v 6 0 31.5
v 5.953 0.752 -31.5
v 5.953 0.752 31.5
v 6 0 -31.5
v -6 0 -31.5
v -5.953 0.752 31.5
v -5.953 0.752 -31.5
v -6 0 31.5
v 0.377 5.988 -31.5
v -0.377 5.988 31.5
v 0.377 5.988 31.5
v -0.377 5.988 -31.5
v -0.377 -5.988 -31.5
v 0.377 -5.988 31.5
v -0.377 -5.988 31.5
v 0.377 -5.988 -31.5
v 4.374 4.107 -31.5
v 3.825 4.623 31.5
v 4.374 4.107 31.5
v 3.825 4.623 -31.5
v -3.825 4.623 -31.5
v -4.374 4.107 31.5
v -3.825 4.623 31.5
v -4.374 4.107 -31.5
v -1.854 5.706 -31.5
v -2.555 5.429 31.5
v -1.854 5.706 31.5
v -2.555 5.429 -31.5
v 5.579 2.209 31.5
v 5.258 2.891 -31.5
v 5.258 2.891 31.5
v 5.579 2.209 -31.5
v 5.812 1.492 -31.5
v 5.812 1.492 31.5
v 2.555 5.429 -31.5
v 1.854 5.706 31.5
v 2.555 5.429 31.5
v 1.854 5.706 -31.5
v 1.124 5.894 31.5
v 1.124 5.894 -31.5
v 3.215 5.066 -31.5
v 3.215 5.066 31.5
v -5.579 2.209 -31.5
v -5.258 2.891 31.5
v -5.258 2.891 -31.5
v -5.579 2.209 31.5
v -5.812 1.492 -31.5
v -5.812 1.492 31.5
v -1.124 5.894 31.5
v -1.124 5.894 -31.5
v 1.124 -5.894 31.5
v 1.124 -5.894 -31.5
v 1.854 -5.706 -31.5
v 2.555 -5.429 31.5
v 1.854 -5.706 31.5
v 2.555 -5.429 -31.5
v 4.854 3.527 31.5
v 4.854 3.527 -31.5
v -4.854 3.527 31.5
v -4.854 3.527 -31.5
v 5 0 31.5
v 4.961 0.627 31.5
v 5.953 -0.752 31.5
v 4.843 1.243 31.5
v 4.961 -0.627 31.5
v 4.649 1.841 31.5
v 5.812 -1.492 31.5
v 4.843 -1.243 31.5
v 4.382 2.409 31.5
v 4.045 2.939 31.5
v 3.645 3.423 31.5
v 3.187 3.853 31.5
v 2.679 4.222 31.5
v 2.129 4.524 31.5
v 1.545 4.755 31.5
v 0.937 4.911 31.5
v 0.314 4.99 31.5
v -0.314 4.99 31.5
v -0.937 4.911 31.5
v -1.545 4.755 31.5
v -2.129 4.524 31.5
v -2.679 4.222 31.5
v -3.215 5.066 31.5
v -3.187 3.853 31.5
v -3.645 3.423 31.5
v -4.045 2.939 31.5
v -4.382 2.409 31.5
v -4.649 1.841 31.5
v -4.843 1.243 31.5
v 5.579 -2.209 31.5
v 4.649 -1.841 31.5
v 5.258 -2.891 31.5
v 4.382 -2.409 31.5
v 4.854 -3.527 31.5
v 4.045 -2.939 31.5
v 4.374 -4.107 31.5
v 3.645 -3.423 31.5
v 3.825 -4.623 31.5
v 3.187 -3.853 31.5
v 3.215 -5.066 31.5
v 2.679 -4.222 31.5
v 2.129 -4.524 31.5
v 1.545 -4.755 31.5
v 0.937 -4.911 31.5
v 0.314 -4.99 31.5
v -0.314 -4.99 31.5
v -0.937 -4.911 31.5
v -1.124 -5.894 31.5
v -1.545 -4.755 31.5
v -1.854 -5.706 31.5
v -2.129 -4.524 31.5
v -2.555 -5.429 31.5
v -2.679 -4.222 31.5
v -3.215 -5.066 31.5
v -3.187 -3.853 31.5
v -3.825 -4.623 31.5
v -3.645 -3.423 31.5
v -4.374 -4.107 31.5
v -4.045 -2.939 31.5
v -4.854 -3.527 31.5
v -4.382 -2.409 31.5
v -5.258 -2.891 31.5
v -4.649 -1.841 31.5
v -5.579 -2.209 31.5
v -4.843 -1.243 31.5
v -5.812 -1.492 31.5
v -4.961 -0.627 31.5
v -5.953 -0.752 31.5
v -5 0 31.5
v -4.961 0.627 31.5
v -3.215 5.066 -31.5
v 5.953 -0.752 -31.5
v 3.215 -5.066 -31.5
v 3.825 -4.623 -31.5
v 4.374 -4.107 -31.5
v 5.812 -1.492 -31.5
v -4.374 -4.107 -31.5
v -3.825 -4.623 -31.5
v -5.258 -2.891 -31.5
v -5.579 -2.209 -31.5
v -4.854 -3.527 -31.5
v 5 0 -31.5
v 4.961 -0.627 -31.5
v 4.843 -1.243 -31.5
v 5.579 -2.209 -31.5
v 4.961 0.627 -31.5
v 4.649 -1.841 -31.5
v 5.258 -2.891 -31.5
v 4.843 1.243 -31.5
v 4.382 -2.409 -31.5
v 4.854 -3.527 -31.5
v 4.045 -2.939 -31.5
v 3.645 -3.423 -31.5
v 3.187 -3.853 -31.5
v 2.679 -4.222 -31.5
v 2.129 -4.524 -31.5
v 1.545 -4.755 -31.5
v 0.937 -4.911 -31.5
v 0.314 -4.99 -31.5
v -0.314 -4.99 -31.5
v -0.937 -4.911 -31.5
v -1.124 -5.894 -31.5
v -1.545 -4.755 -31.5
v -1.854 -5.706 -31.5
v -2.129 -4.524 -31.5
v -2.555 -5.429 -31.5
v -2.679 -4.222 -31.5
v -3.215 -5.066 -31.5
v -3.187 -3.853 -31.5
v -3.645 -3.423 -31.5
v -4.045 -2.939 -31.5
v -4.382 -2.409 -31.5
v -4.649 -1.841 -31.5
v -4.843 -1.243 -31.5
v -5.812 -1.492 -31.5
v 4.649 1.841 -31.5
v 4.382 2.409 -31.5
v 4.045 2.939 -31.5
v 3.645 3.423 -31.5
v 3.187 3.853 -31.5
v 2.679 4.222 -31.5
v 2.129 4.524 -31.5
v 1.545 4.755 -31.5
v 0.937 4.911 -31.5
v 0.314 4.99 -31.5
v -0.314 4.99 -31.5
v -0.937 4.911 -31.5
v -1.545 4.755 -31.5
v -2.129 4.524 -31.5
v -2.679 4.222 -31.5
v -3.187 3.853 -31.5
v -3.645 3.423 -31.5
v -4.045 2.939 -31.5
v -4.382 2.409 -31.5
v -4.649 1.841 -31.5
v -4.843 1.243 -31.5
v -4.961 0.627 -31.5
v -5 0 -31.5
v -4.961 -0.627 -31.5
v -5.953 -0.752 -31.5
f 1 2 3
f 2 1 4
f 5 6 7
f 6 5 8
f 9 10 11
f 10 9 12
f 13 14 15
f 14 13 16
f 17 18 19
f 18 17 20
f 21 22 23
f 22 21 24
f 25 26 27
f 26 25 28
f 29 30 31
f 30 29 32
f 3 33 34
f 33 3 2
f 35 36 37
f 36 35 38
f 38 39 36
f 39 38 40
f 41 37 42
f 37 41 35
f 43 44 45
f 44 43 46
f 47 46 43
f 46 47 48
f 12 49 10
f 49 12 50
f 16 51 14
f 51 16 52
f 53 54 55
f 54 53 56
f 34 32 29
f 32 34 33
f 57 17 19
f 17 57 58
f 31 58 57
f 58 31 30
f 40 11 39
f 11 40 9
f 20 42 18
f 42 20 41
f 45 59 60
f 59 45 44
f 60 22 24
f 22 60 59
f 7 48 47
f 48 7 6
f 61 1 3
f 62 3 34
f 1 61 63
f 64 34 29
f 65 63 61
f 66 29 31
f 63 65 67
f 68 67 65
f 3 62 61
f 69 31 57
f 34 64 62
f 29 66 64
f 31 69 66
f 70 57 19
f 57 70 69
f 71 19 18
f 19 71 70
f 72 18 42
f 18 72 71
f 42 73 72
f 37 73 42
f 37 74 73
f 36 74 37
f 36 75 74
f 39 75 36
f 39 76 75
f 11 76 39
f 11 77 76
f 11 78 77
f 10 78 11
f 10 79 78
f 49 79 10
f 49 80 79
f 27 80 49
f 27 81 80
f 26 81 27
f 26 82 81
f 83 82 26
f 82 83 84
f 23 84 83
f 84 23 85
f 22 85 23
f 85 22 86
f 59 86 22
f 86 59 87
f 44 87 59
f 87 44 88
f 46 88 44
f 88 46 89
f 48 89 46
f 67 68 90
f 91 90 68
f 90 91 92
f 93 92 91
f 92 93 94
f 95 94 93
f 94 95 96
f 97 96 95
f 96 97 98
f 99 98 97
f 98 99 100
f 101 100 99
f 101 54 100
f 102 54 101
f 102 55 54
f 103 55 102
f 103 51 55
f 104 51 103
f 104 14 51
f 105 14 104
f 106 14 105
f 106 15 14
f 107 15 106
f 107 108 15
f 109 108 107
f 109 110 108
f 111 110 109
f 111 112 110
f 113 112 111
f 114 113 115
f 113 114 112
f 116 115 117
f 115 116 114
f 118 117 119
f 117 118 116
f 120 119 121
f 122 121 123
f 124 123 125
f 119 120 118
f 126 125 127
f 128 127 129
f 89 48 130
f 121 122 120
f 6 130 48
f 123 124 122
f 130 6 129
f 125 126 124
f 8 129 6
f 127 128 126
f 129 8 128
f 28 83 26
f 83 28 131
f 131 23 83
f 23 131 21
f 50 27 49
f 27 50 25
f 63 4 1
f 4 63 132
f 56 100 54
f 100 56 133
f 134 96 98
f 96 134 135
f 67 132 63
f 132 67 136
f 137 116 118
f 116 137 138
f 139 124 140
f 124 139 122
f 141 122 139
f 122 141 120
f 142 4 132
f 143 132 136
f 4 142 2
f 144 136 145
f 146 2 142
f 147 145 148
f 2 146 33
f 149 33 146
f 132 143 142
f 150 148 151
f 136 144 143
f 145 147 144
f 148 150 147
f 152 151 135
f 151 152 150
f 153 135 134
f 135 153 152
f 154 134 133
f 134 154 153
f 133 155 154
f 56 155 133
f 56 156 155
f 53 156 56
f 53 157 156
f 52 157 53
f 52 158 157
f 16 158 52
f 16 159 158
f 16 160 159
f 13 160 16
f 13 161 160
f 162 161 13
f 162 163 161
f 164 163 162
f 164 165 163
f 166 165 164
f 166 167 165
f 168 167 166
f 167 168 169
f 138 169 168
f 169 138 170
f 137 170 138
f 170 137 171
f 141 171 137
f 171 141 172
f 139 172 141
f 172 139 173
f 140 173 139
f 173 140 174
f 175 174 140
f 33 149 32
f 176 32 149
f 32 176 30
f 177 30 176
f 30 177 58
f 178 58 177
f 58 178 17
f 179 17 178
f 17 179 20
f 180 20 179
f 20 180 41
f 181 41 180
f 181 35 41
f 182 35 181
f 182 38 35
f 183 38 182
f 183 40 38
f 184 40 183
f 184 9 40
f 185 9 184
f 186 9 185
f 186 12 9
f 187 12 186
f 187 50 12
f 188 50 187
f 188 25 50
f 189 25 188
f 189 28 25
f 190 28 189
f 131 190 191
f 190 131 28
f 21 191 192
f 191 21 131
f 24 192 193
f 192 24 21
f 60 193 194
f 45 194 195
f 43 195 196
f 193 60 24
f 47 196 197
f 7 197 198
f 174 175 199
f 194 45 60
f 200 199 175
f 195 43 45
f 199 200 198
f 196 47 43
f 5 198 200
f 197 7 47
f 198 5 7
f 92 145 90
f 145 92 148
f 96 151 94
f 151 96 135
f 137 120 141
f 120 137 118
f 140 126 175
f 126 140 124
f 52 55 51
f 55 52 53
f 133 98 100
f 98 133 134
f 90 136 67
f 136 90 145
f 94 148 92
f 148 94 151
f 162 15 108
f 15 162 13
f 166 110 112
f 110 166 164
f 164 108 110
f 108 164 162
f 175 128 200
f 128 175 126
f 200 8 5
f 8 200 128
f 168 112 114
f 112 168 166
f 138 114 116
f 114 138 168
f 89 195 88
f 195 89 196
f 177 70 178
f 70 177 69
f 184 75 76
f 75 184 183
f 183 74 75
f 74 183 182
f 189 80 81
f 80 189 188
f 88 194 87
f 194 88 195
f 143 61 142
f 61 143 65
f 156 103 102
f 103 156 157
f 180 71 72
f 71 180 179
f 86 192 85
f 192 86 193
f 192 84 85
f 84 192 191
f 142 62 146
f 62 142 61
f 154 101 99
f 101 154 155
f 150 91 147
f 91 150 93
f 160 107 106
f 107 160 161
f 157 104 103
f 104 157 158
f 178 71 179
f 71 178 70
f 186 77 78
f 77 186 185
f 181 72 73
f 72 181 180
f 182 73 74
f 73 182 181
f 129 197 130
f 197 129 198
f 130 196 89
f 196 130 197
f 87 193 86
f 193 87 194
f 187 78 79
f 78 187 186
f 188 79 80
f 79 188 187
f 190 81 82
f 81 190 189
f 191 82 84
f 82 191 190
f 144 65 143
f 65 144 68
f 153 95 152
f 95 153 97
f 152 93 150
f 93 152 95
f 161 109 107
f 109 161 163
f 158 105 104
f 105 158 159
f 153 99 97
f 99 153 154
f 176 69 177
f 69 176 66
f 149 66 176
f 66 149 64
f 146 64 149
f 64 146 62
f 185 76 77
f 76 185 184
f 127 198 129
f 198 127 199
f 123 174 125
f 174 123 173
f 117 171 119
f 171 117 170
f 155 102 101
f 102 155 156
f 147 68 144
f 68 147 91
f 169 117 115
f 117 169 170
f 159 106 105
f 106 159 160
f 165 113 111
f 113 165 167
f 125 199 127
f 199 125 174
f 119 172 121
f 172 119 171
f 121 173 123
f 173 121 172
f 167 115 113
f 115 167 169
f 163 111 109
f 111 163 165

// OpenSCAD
$fn = 50;


difference() {
	union() {
		translate(v = [0, 0, -31.5000000000]) {
			cylinder(h = 63, r = 6.0000000000);
		}
	}
	union() {
		translate(v = [0, 0, -100.0000000000]) {
			cylinder(h = 200, r = 5);
		}
	}
}
